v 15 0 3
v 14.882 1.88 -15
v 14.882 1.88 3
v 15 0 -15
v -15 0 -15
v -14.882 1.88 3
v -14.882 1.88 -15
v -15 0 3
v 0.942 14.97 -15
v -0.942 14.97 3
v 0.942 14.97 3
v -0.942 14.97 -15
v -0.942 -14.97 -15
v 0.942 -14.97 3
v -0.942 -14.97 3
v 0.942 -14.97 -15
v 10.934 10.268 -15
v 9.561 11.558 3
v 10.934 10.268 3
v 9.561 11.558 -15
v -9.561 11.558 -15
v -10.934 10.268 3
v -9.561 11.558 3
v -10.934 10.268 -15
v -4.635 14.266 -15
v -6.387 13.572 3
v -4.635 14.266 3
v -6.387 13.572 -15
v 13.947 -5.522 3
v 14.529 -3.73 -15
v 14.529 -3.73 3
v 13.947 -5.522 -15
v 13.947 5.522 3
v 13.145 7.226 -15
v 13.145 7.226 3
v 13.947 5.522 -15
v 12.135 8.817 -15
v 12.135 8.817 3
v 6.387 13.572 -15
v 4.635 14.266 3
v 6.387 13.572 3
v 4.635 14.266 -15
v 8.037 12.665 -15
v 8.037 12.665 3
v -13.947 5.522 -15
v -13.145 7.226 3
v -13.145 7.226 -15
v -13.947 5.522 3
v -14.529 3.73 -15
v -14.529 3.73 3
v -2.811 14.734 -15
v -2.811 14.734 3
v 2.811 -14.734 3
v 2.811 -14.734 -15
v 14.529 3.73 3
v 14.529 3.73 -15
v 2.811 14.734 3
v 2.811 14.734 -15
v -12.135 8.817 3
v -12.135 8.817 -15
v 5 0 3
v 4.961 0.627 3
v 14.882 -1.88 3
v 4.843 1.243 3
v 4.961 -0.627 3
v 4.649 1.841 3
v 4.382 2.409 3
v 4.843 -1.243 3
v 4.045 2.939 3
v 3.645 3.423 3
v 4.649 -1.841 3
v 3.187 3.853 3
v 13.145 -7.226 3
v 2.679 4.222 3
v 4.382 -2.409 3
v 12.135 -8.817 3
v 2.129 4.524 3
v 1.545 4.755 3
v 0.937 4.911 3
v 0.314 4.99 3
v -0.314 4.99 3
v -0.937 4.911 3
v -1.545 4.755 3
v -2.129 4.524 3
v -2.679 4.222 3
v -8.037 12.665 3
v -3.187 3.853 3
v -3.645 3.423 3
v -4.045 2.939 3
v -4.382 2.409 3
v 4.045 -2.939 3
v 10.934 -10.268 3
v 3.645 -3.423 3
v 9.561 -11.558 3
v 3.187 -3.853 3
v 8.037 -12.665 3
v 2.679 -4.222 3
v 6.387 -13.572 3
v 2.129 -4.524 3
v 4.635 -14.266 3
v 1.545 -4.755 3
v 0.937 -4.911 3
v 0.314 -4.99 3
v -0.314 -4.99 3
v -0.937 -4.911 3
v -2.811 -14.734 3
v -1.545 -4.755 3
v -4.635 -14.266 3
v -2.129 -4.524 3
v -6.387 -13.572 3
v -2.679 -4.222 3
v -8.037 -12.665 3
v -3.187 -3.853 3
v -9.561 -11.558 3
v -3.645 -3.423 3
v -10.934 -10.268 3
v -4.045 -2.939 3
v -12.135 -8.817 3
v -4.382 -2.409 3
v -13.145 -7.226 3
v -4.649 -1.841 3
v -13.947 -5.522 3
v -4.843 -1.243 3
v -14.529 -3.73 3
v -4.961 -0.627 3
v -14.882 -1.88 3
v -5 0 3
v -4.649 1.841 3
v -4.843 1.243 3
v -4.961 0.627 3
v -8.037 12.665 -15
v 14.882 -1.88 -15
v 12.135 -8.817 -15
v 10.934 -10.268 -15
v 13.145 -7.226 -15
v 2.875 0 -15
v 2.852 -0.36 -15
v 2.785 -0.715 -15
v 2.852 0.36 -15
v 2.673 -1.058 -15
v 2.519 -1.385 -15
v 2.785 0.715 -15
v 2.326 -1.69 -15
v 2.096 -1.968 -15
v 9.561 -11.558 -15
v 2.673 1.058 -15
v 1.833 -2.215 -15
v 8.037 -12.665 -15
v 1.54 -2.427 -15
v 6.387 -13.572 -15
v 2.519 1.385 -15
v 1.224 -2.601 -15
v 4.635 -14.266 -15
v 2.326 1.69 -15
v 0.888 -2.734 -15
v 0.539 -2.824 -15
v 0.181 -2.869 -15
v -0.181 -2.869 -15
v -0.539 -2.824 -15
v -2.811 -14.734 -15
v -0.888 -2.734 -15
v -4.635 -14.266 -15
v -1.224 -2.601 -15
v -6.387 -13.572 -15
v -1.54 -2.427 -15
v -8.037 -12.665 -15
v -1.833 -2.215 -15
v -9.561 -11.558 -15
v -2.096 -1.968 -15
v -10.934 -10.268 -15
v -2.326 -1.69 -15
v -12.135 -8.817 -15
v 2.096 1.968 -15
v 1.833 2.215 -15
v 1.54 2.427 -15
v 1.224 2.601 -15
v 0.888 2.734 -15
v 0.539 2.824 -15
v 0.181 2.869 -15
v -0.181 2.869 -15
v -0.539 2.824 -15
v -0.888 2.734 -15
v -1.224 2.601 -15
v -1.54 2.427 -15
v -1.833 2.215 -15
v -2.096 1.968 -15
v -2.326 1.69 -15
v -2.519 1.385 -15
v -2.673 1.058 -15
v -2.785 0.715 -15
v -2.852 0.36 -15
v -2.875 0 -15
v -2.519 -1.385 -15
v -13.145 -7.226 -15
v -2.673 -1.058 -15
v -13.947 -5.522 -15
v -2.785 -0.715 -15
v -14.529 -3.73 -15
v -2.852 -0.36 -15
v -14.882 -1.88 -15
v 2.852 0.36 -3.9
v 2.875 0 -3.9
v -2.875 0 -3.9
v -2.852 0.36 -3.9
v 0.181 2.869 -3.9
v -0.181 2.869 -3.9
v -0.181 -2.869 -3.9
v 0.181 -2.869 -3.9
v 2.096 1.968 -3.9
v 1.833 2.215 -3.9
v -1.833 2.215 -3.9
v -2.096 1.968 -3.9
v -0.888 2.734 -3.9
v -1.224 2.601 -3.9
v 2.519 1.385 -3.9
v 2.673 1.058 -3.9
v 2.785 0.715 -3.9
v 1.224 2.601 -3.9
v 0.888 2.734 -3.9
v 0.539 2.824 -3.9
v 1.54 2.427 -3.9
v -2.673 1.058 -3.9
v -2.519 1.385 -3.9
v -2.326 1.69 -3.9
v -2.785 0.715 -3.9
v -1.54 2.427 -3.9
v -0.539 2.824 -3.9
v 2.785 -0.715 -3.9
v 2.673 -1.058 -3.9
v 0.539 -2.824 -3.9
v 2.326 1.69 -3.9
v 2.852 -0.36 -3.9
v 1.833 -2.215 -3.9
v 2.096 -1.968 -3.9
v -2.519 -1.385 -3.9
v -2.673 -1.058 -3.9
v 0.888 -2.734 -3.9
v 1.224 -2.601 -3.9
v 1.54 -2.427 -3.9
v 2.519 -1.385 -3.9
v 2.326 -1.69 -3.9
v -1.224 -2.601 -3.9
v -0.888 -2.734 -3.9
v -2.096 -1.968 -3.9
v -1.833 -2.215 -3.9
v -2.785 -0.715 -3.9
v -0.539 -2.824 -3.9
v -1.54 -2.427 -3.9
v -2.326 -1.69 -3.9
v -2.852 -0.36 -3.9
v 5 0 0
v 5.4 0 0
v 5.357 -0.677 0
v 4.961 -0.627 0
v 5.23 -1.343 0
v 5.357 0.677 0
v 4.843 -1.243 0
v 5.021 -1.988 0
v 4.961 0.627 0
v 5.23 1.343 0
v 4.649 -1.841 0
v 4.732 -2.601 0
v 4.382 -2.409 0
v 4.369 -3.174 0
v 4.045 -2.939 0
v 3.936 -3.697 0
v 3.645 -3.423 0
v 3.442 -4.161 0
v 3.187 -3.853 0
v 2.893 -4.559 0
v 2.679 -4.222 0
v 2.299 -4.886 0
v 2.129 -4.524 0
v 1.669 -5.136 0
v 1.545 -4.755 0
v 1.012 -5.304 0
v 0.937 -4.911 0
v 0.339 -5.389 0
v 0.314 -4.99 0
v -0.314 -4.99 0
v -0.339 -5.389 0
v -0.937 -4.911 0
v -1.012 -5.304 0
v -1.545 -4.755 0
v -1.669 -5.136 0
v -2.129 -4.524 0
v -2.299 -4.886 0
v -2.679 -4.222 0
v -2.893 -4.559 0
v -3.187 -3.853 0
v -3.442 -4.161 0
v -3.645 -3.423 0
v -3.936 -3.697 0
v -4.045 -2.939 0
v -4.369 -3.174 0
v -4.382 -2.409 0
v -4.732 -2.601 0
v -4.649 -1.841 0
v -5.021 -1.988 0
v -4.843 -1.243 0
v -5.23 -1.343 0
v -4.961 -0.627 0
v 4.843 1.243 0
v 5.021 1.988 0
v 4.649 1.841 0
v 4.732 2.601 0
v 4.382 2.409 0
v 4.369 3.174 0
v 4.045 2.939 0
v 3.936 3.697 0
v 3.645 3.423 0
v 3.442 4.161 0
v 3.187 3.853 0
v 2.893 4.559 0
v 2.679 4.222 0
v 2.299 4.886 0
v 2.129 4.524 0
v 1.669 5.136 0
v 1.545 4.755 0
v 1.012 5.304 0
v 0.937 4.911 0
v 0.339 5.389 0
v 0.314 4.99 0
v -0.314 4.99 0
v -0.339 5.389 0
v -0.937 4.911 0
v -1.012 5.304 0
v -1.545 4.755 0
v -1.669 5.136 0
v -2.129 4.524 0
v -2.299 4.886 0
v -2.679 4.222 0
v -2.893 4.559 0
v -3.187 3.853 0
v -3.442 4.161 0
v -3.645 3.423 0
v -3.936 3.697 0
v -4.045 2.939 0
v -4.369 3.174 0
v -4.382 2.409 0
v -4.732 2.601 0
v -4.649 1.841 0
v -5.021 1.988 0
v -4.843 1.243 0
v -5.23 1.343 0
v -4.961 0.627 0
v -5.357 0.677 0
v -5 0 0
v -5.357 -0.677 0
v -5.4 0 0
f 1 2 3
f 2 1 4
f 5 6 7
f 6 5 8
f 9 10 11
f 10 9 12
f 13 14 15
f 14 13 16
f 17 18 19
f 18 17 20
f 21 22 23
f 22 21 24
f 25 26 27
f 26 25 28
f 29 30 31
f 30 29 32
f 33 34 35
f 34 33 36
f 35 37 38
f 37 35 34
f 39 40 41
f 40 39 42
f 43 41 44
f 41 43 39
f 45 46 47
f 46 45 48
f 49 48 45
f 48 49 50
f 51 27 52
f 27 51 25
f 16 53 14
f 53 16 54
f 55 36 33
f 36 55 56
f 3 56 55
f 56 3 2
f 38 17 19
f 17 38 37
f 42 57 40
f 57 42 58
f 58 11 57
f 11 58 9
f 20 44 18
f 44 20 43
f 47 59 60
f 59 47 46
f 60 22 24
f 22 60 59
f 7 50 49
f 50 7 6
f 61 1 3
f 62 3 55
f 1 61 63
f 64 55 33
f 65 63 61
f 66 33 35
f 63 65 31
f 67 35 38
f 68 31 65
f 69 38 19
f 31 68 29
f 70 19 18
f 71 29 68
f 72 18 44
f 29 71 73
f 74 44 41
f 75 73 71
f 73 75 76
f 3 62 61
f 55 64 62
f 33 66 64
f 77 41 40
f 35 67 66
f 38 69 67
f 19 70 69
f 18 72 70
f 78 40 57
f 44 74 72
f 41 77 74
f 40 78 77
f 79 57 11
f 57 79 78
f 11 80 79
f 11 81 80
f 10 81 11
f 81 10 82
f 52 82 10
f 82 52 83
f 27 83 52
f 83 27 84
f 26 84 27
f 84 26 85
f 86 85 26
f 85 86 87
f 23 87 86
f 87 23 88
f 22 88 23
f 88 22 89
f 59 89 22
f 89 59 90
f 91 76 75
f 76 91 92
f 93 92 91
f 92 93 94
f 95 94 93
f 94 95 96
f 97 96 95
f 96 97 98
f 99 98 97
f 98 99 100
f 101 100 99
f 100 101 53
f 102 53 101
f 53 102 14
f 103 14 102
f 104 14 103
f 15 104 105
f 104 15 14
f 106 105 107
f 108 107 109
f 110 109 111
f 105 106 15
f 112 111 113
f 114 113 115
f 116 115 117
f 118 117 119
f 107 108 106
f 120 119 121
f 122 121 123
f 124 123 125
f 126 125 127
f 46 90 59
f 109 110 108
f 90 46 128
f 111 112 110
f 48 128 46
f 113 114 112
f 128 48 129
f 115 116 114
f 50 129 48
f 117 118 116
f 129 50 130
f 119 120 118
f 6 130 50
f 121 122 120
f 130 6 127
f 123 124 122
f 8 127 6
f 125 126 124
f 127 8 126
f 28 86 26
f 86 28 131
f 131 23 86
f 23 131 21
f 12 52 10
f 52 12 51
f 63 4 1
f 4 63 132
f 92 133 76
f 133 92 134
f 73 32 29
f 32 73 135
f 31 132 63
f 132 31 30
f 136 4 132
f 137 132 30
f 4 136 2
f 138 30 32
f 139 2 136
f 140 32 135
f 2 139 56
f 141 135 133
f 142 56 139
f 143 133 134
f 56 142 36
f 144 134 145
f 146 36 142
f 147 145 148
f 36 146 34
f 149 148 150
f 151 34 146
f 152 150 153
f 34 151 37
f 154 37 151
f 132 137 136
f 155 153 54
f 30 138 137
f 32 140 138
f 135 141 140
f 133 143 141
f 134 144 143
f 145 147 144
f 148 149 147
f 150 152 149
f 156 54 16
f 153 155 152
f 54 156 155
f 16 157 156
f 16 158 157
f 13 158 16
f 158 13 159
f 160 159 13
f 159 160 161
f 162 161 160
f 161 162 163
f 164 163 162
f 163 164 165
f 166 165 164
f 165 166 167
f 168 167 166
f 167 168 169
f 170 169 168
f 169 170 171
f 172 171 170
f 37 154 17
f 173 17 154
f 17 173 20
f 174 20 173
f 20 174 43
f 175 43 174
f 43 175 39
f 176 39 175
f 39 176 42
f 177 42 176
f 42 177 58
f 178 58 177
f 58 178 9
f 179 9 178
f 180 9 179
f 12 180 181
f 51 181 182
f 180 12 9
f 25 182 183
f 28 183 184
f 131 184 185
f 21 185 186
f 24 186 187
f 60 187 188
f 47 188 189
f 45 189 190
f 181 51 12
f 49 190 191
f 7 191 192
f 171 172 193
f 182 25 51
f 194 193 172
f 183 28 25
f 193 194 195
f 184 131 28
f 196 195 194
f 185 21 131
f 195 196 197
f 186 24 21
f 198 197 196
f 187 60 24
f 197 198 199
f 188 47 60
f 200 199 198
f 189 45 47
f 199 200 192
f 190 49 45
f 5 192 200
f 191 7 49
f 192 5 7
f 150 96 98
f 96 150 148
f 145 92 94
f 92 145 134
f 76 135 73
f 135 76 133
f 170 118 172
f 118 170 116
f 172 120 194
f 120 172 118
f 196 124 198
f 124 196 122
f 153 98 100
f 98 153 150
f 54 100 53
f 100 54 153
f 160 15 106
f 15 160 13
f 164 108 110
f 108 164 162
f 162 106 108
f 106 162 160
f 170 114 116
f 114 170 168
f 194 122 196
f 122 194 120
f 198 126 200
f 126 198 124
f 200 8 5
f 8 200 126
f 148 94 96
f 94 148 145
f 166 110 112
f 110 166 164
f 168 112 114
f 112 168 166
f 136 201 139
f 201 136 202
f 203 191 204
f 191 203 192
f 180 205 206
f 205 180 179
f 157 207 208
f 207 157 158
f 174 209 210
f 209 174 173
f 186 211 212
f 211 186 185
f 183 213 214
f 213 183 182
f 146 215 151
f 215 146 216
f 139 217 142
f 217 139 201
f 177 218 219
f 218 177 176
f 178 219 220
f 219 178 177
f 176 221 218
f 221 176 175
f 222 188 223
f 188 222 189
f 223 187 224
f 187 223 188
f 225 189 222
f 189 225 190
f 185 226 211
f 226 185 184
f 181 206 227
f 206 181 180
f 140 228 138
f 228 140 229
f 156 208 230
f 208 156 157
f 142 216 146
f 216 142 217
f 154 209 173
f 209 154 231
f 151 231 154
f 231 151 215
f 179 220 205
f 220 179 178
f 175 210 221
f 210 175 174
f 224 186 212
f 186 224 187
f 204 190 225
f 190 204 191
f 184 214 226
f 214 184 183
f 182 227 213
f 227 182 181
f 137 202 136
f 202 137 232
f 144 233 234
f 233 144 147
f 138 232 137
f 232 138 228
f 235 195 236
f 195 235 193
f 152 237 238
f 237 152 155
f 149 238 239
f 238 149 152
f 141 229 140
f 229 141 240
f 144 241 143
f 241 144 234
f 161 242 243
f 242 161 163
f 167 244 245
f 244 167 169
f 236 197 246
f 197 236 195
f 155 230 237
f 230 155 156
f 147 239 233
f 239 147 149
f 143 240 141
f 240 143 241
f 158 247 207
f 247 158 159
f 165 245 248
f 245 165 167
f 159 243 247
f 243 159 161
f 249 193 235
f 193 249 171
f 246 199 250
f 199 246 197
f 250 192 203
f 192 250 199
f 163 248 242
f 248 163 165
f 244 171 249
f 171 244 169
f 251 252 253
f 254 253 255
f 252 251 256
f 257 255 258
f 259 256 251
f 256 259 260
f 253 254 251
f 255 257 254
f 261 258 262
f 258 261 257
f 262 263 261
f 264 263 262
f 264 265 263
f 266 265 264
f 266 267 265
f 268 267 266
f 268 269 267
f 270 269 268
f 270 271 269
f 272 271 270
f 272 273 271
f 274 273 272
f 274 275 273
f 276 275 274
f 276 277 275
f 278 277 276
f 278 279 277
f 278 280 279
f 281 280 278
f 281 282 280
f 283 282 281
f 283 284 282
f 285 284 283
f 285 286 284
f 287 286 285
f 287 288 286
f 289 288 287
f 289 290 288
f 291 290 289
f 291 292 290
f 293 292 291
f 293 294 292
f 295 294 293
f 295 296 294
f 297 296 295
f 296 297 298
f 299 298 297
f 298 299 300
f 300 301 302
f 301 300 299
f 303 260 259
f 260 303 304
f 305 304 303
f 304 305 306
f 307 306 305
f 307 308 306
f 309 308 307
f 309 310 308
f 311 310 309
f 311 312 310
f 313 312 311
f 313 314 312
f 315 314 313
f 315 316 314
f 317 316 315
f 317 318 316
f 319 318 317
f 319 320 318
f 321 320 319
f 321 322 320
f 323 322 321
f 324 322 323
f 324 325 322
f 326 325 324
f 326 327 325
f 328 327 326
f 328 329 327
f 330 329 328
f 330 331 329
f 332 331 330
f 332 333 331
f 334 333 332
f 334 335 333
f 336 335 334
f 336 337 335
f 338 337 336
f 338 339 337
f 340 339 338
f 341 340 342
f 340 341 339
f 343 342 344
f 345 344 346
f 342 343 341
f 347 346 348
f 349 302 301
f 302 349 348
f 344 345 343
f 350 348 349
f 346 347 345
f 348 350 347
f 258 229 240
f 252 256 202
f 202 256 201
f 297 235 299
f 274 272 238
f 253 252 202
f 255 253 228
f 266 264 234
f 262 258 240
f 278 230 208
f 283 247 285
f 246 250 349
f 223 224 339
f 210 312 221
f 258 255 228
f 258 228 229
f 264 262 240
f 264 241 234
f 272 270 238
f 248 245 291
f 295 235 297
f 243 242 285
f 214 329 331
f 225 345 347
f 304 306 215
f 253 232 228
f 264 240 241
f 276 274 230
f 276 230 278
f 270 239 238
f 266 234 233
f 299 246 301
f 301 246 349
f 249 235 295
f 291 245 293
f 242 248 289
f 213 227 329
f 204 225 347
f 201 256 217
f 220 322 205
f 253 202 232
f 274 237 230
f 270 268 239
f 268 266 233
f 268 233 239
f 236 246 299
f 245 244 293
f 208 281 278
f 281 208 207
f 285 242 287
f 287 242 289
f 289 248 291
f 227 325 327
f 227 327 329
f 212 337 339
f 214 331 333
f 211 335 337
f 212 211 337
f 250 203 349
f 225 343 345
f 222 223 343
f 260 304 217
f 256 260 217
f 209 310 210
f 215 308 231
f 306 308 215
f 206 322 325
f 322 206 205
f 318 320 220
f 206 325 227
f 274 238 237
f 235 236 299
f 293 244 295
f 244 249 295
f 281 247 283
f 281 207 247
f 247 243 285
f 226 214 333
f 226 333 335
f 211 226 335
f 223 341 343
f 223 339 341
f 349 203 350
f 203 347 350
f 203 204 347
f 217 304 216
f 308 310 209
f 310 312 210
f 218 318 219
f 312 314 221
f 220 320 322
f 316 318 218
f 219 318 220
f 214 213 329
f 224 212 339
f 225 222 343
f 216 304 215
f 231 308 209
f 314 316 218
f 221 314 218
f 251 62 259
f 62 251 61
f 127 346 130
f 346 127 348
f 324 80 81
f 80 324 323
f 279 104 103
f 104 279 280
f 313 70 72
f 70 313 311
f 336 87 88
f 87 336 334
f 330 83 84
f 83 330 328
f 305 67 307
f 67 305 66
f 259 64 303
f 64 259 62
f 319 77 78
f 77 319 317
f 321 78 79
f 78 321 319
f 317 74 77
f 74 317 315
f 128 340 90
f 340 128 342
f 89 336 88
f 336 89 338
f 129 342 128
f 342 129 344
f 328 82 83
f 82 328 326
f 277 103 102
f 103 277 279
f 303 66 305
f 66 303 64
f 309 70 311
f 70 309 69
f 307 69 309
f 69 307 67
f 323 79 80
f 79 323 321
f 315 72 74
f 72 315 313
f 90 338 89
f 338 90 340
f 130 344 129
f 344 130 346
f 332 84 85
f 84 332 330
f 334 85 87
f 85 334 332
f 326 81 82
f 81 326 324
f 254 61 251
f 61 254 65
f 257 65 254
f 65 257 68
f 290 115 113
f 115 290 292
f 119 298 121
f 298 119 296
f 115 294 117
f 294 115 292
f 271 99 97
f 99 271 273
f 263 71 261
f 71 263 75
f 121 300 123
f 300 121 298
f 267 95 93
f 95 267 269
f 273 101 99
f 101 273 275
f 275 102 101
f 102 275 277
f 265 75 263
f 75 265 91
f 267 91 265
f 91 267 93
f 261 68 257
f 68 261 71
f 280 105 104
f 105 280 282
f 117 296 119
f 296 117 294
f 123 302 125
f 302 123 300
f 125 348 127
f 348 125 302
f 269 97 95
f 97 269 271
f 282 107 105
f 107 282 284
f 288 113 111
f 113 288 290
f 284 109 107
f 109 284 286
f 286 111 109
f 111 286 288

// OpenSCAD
$fn = 50;


difference() {
	union() {
		translate(v = [0, 0, -15.0000000000]) {
			cylinder(h = 18, r = 15.0000000000);
		}
		#translate(v = [0, 0, -18.0000000000]) {
			cylinder(h = 18, r = 2.8750000000);
		}
	}
	union() {
		translate(v = [0, 0, 0]) {
			rotate(a = [0, 0, 0]) {
				difference() {
					union() {
						translate(v = [0, 0, -18.0000000000]) {
							cylinder(h = 18, r = 2.6000000000);
						}
						translate(v = [0, 0, -3.9000000000]) {
							cylinder(h = 3.9000000000, r1 = 2.8750000000, r2 = 5.4000000000);
						}
						translate(v = [0, 0, -18.0000000000]) {
							cylinder(h = 18, r = 2.8750000000);
						}
						translate(v = [0, 0, -18.0000000000]) {
							cylinder(h = 18, r = 2.6000000000);
						}
					}
					union();
				}
			}
		}
		#cylinder(h = 3, r = 5.0000000000);
	}
}
